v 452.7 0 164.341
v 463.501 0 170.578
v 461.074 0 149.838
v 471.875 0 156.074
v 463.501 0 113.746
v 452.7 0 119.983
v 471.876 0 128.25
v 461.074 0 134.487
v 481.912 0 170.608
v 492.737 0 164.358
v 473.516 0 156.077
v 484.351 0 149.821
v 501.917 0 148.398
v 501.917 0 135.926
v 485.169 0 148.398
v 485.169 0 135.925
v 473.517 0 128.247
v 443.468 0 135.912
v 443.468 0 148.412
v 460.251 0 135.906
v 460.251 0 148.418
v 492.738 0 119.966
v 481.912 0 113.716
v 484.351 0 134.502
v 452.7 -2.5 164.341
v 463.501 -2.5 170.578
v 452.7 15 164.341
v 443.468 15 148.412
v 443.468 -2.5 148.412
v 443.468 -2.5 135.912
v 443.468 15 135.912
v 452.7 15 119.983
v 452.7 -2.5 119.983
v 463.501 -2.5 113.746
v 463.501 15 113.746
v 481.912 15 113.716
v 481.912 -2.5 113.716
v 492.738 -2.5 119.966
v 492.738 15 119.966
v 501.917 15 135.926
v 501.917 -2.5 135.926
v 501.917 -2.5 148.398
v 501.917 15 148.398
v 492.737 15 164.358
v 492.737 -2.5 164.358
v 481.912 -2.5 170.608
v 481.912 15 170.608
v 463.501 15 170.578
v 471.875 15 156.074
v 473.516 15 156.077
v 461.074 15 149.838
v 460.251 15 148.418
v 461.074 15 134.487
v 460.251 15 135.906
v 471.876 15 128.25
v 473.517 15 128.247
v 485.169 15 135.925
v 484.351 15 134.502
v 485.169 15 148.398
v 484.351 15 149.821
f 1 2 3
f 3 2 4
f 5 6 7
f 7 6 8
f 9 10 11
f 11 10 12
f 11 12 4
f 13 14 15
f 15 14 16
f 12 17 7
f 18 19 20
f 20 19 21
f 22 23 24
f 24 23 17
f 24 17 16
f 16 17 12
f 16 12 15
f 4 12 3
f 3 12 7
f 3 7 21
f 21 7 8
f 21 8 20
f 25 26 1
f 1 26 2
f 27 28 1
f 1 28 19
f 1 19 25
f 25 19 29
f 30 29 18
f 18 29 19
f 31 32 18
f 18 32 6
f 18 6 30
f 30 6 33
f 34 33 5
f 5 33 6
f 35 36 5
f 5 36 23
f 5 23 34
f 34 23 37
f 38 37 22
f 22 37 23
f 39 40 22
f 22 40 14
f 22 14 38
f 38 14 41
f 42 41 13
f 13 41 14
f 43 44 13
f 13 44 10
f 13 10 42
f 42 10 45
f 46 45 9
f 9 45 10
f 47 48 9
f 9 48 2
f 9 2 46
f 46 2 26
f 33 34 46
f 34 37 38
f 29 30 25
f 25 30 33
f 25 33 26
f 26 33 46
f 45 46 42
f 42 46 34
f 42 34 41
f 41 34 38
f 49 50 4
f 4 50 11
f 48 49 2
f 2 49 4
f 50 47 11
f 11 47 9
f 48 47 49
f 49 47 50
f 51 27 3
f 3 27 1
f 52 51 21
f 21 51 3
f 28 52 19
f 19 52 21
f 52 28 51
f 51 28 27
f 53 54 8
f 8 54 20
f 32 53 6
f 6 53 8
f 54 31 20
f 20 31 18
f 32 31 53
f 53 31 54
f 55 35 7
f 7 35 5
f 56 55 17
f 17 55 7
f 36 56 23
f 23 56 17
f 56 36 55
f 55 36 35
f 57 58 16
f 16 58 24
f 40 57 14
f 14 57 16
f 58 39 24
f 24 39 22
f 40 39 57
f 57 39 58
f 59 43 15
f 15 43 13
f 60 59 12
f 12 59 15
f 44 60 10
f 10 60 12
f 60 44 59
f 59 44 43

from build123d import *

# Parameters (mm, degrees)
BOSS_EXTRUDE1_DEPTH = 2.5
BOSS_EXTRUDE2_DEPTH = 15


with BuildPart() as part:
    # Sketch1 → Boss-Extrude1 (new body)
    with BuildSketch(Plane(origin=(0, 0, 0), x_dir=(1, 0, 0), z_dir=(0, 1, 0))):
        Polygon((443.467960434, -135.912167949), (443.467960434, -148.412314407), (452.699844164, -164.341477869), (463.501071842, -170.577558199), (481.912073973, -170.607993214), (492.737508483, -164.357902881), (501.91660162, -148.398260812), (501.916753351, -135.925543562), (492.738048515, -119.96567817), (481.912449677, -113.71552717), (463.501448438, -113.746497393), (452.699844164, -119.983004487), align=None)
    extrude(amount=-BOSS_EXTRUDE1_DEPTH)

    # Sketch1<12> → Boss-Extrude2 (add)
    with BuildSketch(Plane(origin=(0, 0, 0), x_dir=(1, 0, 0), z_dir=(0, 1, 0))):
        Polygon((443.467960434, -148.412314407), (452.699844164, -164.341477869), (461.073568615, -149.83773521), (460.250524065, -148.418039508), align=None)
        Polygon((471.874796293, -156.07381554), (463.501071842, -170.577558199), (481.912073973, -170.607993214), (473.515811116, -156.076742585), align=None)
        Polygon((452.699844164, -119.983004487), (443.467960434, -135.912167949), (460.250524065, -135.906442848), (461.073568615, -134.486747146), align=None)
        Polygon((484.351161781, -149.820927135), (492.737508483, -164.357902881), (501.91660162, -148.398260812), (485.169129802, -148.398300503), align=None)
        Polygon((481.912449677, -113.71552717), (463.501448438, -113.746497393), (471.875594509, -128.249996622), (473.516609246, -128.247021872), align=None)
        Polygon((485.169281539, -135.925096404), (501.916753351, -135.925543562), (492.738048515, -119.96567817), (484.351348131, -134.502449871), align=None)
    extrude(amount=BOSS_EXTRUDE2_DEPTH)


solid = part.part
